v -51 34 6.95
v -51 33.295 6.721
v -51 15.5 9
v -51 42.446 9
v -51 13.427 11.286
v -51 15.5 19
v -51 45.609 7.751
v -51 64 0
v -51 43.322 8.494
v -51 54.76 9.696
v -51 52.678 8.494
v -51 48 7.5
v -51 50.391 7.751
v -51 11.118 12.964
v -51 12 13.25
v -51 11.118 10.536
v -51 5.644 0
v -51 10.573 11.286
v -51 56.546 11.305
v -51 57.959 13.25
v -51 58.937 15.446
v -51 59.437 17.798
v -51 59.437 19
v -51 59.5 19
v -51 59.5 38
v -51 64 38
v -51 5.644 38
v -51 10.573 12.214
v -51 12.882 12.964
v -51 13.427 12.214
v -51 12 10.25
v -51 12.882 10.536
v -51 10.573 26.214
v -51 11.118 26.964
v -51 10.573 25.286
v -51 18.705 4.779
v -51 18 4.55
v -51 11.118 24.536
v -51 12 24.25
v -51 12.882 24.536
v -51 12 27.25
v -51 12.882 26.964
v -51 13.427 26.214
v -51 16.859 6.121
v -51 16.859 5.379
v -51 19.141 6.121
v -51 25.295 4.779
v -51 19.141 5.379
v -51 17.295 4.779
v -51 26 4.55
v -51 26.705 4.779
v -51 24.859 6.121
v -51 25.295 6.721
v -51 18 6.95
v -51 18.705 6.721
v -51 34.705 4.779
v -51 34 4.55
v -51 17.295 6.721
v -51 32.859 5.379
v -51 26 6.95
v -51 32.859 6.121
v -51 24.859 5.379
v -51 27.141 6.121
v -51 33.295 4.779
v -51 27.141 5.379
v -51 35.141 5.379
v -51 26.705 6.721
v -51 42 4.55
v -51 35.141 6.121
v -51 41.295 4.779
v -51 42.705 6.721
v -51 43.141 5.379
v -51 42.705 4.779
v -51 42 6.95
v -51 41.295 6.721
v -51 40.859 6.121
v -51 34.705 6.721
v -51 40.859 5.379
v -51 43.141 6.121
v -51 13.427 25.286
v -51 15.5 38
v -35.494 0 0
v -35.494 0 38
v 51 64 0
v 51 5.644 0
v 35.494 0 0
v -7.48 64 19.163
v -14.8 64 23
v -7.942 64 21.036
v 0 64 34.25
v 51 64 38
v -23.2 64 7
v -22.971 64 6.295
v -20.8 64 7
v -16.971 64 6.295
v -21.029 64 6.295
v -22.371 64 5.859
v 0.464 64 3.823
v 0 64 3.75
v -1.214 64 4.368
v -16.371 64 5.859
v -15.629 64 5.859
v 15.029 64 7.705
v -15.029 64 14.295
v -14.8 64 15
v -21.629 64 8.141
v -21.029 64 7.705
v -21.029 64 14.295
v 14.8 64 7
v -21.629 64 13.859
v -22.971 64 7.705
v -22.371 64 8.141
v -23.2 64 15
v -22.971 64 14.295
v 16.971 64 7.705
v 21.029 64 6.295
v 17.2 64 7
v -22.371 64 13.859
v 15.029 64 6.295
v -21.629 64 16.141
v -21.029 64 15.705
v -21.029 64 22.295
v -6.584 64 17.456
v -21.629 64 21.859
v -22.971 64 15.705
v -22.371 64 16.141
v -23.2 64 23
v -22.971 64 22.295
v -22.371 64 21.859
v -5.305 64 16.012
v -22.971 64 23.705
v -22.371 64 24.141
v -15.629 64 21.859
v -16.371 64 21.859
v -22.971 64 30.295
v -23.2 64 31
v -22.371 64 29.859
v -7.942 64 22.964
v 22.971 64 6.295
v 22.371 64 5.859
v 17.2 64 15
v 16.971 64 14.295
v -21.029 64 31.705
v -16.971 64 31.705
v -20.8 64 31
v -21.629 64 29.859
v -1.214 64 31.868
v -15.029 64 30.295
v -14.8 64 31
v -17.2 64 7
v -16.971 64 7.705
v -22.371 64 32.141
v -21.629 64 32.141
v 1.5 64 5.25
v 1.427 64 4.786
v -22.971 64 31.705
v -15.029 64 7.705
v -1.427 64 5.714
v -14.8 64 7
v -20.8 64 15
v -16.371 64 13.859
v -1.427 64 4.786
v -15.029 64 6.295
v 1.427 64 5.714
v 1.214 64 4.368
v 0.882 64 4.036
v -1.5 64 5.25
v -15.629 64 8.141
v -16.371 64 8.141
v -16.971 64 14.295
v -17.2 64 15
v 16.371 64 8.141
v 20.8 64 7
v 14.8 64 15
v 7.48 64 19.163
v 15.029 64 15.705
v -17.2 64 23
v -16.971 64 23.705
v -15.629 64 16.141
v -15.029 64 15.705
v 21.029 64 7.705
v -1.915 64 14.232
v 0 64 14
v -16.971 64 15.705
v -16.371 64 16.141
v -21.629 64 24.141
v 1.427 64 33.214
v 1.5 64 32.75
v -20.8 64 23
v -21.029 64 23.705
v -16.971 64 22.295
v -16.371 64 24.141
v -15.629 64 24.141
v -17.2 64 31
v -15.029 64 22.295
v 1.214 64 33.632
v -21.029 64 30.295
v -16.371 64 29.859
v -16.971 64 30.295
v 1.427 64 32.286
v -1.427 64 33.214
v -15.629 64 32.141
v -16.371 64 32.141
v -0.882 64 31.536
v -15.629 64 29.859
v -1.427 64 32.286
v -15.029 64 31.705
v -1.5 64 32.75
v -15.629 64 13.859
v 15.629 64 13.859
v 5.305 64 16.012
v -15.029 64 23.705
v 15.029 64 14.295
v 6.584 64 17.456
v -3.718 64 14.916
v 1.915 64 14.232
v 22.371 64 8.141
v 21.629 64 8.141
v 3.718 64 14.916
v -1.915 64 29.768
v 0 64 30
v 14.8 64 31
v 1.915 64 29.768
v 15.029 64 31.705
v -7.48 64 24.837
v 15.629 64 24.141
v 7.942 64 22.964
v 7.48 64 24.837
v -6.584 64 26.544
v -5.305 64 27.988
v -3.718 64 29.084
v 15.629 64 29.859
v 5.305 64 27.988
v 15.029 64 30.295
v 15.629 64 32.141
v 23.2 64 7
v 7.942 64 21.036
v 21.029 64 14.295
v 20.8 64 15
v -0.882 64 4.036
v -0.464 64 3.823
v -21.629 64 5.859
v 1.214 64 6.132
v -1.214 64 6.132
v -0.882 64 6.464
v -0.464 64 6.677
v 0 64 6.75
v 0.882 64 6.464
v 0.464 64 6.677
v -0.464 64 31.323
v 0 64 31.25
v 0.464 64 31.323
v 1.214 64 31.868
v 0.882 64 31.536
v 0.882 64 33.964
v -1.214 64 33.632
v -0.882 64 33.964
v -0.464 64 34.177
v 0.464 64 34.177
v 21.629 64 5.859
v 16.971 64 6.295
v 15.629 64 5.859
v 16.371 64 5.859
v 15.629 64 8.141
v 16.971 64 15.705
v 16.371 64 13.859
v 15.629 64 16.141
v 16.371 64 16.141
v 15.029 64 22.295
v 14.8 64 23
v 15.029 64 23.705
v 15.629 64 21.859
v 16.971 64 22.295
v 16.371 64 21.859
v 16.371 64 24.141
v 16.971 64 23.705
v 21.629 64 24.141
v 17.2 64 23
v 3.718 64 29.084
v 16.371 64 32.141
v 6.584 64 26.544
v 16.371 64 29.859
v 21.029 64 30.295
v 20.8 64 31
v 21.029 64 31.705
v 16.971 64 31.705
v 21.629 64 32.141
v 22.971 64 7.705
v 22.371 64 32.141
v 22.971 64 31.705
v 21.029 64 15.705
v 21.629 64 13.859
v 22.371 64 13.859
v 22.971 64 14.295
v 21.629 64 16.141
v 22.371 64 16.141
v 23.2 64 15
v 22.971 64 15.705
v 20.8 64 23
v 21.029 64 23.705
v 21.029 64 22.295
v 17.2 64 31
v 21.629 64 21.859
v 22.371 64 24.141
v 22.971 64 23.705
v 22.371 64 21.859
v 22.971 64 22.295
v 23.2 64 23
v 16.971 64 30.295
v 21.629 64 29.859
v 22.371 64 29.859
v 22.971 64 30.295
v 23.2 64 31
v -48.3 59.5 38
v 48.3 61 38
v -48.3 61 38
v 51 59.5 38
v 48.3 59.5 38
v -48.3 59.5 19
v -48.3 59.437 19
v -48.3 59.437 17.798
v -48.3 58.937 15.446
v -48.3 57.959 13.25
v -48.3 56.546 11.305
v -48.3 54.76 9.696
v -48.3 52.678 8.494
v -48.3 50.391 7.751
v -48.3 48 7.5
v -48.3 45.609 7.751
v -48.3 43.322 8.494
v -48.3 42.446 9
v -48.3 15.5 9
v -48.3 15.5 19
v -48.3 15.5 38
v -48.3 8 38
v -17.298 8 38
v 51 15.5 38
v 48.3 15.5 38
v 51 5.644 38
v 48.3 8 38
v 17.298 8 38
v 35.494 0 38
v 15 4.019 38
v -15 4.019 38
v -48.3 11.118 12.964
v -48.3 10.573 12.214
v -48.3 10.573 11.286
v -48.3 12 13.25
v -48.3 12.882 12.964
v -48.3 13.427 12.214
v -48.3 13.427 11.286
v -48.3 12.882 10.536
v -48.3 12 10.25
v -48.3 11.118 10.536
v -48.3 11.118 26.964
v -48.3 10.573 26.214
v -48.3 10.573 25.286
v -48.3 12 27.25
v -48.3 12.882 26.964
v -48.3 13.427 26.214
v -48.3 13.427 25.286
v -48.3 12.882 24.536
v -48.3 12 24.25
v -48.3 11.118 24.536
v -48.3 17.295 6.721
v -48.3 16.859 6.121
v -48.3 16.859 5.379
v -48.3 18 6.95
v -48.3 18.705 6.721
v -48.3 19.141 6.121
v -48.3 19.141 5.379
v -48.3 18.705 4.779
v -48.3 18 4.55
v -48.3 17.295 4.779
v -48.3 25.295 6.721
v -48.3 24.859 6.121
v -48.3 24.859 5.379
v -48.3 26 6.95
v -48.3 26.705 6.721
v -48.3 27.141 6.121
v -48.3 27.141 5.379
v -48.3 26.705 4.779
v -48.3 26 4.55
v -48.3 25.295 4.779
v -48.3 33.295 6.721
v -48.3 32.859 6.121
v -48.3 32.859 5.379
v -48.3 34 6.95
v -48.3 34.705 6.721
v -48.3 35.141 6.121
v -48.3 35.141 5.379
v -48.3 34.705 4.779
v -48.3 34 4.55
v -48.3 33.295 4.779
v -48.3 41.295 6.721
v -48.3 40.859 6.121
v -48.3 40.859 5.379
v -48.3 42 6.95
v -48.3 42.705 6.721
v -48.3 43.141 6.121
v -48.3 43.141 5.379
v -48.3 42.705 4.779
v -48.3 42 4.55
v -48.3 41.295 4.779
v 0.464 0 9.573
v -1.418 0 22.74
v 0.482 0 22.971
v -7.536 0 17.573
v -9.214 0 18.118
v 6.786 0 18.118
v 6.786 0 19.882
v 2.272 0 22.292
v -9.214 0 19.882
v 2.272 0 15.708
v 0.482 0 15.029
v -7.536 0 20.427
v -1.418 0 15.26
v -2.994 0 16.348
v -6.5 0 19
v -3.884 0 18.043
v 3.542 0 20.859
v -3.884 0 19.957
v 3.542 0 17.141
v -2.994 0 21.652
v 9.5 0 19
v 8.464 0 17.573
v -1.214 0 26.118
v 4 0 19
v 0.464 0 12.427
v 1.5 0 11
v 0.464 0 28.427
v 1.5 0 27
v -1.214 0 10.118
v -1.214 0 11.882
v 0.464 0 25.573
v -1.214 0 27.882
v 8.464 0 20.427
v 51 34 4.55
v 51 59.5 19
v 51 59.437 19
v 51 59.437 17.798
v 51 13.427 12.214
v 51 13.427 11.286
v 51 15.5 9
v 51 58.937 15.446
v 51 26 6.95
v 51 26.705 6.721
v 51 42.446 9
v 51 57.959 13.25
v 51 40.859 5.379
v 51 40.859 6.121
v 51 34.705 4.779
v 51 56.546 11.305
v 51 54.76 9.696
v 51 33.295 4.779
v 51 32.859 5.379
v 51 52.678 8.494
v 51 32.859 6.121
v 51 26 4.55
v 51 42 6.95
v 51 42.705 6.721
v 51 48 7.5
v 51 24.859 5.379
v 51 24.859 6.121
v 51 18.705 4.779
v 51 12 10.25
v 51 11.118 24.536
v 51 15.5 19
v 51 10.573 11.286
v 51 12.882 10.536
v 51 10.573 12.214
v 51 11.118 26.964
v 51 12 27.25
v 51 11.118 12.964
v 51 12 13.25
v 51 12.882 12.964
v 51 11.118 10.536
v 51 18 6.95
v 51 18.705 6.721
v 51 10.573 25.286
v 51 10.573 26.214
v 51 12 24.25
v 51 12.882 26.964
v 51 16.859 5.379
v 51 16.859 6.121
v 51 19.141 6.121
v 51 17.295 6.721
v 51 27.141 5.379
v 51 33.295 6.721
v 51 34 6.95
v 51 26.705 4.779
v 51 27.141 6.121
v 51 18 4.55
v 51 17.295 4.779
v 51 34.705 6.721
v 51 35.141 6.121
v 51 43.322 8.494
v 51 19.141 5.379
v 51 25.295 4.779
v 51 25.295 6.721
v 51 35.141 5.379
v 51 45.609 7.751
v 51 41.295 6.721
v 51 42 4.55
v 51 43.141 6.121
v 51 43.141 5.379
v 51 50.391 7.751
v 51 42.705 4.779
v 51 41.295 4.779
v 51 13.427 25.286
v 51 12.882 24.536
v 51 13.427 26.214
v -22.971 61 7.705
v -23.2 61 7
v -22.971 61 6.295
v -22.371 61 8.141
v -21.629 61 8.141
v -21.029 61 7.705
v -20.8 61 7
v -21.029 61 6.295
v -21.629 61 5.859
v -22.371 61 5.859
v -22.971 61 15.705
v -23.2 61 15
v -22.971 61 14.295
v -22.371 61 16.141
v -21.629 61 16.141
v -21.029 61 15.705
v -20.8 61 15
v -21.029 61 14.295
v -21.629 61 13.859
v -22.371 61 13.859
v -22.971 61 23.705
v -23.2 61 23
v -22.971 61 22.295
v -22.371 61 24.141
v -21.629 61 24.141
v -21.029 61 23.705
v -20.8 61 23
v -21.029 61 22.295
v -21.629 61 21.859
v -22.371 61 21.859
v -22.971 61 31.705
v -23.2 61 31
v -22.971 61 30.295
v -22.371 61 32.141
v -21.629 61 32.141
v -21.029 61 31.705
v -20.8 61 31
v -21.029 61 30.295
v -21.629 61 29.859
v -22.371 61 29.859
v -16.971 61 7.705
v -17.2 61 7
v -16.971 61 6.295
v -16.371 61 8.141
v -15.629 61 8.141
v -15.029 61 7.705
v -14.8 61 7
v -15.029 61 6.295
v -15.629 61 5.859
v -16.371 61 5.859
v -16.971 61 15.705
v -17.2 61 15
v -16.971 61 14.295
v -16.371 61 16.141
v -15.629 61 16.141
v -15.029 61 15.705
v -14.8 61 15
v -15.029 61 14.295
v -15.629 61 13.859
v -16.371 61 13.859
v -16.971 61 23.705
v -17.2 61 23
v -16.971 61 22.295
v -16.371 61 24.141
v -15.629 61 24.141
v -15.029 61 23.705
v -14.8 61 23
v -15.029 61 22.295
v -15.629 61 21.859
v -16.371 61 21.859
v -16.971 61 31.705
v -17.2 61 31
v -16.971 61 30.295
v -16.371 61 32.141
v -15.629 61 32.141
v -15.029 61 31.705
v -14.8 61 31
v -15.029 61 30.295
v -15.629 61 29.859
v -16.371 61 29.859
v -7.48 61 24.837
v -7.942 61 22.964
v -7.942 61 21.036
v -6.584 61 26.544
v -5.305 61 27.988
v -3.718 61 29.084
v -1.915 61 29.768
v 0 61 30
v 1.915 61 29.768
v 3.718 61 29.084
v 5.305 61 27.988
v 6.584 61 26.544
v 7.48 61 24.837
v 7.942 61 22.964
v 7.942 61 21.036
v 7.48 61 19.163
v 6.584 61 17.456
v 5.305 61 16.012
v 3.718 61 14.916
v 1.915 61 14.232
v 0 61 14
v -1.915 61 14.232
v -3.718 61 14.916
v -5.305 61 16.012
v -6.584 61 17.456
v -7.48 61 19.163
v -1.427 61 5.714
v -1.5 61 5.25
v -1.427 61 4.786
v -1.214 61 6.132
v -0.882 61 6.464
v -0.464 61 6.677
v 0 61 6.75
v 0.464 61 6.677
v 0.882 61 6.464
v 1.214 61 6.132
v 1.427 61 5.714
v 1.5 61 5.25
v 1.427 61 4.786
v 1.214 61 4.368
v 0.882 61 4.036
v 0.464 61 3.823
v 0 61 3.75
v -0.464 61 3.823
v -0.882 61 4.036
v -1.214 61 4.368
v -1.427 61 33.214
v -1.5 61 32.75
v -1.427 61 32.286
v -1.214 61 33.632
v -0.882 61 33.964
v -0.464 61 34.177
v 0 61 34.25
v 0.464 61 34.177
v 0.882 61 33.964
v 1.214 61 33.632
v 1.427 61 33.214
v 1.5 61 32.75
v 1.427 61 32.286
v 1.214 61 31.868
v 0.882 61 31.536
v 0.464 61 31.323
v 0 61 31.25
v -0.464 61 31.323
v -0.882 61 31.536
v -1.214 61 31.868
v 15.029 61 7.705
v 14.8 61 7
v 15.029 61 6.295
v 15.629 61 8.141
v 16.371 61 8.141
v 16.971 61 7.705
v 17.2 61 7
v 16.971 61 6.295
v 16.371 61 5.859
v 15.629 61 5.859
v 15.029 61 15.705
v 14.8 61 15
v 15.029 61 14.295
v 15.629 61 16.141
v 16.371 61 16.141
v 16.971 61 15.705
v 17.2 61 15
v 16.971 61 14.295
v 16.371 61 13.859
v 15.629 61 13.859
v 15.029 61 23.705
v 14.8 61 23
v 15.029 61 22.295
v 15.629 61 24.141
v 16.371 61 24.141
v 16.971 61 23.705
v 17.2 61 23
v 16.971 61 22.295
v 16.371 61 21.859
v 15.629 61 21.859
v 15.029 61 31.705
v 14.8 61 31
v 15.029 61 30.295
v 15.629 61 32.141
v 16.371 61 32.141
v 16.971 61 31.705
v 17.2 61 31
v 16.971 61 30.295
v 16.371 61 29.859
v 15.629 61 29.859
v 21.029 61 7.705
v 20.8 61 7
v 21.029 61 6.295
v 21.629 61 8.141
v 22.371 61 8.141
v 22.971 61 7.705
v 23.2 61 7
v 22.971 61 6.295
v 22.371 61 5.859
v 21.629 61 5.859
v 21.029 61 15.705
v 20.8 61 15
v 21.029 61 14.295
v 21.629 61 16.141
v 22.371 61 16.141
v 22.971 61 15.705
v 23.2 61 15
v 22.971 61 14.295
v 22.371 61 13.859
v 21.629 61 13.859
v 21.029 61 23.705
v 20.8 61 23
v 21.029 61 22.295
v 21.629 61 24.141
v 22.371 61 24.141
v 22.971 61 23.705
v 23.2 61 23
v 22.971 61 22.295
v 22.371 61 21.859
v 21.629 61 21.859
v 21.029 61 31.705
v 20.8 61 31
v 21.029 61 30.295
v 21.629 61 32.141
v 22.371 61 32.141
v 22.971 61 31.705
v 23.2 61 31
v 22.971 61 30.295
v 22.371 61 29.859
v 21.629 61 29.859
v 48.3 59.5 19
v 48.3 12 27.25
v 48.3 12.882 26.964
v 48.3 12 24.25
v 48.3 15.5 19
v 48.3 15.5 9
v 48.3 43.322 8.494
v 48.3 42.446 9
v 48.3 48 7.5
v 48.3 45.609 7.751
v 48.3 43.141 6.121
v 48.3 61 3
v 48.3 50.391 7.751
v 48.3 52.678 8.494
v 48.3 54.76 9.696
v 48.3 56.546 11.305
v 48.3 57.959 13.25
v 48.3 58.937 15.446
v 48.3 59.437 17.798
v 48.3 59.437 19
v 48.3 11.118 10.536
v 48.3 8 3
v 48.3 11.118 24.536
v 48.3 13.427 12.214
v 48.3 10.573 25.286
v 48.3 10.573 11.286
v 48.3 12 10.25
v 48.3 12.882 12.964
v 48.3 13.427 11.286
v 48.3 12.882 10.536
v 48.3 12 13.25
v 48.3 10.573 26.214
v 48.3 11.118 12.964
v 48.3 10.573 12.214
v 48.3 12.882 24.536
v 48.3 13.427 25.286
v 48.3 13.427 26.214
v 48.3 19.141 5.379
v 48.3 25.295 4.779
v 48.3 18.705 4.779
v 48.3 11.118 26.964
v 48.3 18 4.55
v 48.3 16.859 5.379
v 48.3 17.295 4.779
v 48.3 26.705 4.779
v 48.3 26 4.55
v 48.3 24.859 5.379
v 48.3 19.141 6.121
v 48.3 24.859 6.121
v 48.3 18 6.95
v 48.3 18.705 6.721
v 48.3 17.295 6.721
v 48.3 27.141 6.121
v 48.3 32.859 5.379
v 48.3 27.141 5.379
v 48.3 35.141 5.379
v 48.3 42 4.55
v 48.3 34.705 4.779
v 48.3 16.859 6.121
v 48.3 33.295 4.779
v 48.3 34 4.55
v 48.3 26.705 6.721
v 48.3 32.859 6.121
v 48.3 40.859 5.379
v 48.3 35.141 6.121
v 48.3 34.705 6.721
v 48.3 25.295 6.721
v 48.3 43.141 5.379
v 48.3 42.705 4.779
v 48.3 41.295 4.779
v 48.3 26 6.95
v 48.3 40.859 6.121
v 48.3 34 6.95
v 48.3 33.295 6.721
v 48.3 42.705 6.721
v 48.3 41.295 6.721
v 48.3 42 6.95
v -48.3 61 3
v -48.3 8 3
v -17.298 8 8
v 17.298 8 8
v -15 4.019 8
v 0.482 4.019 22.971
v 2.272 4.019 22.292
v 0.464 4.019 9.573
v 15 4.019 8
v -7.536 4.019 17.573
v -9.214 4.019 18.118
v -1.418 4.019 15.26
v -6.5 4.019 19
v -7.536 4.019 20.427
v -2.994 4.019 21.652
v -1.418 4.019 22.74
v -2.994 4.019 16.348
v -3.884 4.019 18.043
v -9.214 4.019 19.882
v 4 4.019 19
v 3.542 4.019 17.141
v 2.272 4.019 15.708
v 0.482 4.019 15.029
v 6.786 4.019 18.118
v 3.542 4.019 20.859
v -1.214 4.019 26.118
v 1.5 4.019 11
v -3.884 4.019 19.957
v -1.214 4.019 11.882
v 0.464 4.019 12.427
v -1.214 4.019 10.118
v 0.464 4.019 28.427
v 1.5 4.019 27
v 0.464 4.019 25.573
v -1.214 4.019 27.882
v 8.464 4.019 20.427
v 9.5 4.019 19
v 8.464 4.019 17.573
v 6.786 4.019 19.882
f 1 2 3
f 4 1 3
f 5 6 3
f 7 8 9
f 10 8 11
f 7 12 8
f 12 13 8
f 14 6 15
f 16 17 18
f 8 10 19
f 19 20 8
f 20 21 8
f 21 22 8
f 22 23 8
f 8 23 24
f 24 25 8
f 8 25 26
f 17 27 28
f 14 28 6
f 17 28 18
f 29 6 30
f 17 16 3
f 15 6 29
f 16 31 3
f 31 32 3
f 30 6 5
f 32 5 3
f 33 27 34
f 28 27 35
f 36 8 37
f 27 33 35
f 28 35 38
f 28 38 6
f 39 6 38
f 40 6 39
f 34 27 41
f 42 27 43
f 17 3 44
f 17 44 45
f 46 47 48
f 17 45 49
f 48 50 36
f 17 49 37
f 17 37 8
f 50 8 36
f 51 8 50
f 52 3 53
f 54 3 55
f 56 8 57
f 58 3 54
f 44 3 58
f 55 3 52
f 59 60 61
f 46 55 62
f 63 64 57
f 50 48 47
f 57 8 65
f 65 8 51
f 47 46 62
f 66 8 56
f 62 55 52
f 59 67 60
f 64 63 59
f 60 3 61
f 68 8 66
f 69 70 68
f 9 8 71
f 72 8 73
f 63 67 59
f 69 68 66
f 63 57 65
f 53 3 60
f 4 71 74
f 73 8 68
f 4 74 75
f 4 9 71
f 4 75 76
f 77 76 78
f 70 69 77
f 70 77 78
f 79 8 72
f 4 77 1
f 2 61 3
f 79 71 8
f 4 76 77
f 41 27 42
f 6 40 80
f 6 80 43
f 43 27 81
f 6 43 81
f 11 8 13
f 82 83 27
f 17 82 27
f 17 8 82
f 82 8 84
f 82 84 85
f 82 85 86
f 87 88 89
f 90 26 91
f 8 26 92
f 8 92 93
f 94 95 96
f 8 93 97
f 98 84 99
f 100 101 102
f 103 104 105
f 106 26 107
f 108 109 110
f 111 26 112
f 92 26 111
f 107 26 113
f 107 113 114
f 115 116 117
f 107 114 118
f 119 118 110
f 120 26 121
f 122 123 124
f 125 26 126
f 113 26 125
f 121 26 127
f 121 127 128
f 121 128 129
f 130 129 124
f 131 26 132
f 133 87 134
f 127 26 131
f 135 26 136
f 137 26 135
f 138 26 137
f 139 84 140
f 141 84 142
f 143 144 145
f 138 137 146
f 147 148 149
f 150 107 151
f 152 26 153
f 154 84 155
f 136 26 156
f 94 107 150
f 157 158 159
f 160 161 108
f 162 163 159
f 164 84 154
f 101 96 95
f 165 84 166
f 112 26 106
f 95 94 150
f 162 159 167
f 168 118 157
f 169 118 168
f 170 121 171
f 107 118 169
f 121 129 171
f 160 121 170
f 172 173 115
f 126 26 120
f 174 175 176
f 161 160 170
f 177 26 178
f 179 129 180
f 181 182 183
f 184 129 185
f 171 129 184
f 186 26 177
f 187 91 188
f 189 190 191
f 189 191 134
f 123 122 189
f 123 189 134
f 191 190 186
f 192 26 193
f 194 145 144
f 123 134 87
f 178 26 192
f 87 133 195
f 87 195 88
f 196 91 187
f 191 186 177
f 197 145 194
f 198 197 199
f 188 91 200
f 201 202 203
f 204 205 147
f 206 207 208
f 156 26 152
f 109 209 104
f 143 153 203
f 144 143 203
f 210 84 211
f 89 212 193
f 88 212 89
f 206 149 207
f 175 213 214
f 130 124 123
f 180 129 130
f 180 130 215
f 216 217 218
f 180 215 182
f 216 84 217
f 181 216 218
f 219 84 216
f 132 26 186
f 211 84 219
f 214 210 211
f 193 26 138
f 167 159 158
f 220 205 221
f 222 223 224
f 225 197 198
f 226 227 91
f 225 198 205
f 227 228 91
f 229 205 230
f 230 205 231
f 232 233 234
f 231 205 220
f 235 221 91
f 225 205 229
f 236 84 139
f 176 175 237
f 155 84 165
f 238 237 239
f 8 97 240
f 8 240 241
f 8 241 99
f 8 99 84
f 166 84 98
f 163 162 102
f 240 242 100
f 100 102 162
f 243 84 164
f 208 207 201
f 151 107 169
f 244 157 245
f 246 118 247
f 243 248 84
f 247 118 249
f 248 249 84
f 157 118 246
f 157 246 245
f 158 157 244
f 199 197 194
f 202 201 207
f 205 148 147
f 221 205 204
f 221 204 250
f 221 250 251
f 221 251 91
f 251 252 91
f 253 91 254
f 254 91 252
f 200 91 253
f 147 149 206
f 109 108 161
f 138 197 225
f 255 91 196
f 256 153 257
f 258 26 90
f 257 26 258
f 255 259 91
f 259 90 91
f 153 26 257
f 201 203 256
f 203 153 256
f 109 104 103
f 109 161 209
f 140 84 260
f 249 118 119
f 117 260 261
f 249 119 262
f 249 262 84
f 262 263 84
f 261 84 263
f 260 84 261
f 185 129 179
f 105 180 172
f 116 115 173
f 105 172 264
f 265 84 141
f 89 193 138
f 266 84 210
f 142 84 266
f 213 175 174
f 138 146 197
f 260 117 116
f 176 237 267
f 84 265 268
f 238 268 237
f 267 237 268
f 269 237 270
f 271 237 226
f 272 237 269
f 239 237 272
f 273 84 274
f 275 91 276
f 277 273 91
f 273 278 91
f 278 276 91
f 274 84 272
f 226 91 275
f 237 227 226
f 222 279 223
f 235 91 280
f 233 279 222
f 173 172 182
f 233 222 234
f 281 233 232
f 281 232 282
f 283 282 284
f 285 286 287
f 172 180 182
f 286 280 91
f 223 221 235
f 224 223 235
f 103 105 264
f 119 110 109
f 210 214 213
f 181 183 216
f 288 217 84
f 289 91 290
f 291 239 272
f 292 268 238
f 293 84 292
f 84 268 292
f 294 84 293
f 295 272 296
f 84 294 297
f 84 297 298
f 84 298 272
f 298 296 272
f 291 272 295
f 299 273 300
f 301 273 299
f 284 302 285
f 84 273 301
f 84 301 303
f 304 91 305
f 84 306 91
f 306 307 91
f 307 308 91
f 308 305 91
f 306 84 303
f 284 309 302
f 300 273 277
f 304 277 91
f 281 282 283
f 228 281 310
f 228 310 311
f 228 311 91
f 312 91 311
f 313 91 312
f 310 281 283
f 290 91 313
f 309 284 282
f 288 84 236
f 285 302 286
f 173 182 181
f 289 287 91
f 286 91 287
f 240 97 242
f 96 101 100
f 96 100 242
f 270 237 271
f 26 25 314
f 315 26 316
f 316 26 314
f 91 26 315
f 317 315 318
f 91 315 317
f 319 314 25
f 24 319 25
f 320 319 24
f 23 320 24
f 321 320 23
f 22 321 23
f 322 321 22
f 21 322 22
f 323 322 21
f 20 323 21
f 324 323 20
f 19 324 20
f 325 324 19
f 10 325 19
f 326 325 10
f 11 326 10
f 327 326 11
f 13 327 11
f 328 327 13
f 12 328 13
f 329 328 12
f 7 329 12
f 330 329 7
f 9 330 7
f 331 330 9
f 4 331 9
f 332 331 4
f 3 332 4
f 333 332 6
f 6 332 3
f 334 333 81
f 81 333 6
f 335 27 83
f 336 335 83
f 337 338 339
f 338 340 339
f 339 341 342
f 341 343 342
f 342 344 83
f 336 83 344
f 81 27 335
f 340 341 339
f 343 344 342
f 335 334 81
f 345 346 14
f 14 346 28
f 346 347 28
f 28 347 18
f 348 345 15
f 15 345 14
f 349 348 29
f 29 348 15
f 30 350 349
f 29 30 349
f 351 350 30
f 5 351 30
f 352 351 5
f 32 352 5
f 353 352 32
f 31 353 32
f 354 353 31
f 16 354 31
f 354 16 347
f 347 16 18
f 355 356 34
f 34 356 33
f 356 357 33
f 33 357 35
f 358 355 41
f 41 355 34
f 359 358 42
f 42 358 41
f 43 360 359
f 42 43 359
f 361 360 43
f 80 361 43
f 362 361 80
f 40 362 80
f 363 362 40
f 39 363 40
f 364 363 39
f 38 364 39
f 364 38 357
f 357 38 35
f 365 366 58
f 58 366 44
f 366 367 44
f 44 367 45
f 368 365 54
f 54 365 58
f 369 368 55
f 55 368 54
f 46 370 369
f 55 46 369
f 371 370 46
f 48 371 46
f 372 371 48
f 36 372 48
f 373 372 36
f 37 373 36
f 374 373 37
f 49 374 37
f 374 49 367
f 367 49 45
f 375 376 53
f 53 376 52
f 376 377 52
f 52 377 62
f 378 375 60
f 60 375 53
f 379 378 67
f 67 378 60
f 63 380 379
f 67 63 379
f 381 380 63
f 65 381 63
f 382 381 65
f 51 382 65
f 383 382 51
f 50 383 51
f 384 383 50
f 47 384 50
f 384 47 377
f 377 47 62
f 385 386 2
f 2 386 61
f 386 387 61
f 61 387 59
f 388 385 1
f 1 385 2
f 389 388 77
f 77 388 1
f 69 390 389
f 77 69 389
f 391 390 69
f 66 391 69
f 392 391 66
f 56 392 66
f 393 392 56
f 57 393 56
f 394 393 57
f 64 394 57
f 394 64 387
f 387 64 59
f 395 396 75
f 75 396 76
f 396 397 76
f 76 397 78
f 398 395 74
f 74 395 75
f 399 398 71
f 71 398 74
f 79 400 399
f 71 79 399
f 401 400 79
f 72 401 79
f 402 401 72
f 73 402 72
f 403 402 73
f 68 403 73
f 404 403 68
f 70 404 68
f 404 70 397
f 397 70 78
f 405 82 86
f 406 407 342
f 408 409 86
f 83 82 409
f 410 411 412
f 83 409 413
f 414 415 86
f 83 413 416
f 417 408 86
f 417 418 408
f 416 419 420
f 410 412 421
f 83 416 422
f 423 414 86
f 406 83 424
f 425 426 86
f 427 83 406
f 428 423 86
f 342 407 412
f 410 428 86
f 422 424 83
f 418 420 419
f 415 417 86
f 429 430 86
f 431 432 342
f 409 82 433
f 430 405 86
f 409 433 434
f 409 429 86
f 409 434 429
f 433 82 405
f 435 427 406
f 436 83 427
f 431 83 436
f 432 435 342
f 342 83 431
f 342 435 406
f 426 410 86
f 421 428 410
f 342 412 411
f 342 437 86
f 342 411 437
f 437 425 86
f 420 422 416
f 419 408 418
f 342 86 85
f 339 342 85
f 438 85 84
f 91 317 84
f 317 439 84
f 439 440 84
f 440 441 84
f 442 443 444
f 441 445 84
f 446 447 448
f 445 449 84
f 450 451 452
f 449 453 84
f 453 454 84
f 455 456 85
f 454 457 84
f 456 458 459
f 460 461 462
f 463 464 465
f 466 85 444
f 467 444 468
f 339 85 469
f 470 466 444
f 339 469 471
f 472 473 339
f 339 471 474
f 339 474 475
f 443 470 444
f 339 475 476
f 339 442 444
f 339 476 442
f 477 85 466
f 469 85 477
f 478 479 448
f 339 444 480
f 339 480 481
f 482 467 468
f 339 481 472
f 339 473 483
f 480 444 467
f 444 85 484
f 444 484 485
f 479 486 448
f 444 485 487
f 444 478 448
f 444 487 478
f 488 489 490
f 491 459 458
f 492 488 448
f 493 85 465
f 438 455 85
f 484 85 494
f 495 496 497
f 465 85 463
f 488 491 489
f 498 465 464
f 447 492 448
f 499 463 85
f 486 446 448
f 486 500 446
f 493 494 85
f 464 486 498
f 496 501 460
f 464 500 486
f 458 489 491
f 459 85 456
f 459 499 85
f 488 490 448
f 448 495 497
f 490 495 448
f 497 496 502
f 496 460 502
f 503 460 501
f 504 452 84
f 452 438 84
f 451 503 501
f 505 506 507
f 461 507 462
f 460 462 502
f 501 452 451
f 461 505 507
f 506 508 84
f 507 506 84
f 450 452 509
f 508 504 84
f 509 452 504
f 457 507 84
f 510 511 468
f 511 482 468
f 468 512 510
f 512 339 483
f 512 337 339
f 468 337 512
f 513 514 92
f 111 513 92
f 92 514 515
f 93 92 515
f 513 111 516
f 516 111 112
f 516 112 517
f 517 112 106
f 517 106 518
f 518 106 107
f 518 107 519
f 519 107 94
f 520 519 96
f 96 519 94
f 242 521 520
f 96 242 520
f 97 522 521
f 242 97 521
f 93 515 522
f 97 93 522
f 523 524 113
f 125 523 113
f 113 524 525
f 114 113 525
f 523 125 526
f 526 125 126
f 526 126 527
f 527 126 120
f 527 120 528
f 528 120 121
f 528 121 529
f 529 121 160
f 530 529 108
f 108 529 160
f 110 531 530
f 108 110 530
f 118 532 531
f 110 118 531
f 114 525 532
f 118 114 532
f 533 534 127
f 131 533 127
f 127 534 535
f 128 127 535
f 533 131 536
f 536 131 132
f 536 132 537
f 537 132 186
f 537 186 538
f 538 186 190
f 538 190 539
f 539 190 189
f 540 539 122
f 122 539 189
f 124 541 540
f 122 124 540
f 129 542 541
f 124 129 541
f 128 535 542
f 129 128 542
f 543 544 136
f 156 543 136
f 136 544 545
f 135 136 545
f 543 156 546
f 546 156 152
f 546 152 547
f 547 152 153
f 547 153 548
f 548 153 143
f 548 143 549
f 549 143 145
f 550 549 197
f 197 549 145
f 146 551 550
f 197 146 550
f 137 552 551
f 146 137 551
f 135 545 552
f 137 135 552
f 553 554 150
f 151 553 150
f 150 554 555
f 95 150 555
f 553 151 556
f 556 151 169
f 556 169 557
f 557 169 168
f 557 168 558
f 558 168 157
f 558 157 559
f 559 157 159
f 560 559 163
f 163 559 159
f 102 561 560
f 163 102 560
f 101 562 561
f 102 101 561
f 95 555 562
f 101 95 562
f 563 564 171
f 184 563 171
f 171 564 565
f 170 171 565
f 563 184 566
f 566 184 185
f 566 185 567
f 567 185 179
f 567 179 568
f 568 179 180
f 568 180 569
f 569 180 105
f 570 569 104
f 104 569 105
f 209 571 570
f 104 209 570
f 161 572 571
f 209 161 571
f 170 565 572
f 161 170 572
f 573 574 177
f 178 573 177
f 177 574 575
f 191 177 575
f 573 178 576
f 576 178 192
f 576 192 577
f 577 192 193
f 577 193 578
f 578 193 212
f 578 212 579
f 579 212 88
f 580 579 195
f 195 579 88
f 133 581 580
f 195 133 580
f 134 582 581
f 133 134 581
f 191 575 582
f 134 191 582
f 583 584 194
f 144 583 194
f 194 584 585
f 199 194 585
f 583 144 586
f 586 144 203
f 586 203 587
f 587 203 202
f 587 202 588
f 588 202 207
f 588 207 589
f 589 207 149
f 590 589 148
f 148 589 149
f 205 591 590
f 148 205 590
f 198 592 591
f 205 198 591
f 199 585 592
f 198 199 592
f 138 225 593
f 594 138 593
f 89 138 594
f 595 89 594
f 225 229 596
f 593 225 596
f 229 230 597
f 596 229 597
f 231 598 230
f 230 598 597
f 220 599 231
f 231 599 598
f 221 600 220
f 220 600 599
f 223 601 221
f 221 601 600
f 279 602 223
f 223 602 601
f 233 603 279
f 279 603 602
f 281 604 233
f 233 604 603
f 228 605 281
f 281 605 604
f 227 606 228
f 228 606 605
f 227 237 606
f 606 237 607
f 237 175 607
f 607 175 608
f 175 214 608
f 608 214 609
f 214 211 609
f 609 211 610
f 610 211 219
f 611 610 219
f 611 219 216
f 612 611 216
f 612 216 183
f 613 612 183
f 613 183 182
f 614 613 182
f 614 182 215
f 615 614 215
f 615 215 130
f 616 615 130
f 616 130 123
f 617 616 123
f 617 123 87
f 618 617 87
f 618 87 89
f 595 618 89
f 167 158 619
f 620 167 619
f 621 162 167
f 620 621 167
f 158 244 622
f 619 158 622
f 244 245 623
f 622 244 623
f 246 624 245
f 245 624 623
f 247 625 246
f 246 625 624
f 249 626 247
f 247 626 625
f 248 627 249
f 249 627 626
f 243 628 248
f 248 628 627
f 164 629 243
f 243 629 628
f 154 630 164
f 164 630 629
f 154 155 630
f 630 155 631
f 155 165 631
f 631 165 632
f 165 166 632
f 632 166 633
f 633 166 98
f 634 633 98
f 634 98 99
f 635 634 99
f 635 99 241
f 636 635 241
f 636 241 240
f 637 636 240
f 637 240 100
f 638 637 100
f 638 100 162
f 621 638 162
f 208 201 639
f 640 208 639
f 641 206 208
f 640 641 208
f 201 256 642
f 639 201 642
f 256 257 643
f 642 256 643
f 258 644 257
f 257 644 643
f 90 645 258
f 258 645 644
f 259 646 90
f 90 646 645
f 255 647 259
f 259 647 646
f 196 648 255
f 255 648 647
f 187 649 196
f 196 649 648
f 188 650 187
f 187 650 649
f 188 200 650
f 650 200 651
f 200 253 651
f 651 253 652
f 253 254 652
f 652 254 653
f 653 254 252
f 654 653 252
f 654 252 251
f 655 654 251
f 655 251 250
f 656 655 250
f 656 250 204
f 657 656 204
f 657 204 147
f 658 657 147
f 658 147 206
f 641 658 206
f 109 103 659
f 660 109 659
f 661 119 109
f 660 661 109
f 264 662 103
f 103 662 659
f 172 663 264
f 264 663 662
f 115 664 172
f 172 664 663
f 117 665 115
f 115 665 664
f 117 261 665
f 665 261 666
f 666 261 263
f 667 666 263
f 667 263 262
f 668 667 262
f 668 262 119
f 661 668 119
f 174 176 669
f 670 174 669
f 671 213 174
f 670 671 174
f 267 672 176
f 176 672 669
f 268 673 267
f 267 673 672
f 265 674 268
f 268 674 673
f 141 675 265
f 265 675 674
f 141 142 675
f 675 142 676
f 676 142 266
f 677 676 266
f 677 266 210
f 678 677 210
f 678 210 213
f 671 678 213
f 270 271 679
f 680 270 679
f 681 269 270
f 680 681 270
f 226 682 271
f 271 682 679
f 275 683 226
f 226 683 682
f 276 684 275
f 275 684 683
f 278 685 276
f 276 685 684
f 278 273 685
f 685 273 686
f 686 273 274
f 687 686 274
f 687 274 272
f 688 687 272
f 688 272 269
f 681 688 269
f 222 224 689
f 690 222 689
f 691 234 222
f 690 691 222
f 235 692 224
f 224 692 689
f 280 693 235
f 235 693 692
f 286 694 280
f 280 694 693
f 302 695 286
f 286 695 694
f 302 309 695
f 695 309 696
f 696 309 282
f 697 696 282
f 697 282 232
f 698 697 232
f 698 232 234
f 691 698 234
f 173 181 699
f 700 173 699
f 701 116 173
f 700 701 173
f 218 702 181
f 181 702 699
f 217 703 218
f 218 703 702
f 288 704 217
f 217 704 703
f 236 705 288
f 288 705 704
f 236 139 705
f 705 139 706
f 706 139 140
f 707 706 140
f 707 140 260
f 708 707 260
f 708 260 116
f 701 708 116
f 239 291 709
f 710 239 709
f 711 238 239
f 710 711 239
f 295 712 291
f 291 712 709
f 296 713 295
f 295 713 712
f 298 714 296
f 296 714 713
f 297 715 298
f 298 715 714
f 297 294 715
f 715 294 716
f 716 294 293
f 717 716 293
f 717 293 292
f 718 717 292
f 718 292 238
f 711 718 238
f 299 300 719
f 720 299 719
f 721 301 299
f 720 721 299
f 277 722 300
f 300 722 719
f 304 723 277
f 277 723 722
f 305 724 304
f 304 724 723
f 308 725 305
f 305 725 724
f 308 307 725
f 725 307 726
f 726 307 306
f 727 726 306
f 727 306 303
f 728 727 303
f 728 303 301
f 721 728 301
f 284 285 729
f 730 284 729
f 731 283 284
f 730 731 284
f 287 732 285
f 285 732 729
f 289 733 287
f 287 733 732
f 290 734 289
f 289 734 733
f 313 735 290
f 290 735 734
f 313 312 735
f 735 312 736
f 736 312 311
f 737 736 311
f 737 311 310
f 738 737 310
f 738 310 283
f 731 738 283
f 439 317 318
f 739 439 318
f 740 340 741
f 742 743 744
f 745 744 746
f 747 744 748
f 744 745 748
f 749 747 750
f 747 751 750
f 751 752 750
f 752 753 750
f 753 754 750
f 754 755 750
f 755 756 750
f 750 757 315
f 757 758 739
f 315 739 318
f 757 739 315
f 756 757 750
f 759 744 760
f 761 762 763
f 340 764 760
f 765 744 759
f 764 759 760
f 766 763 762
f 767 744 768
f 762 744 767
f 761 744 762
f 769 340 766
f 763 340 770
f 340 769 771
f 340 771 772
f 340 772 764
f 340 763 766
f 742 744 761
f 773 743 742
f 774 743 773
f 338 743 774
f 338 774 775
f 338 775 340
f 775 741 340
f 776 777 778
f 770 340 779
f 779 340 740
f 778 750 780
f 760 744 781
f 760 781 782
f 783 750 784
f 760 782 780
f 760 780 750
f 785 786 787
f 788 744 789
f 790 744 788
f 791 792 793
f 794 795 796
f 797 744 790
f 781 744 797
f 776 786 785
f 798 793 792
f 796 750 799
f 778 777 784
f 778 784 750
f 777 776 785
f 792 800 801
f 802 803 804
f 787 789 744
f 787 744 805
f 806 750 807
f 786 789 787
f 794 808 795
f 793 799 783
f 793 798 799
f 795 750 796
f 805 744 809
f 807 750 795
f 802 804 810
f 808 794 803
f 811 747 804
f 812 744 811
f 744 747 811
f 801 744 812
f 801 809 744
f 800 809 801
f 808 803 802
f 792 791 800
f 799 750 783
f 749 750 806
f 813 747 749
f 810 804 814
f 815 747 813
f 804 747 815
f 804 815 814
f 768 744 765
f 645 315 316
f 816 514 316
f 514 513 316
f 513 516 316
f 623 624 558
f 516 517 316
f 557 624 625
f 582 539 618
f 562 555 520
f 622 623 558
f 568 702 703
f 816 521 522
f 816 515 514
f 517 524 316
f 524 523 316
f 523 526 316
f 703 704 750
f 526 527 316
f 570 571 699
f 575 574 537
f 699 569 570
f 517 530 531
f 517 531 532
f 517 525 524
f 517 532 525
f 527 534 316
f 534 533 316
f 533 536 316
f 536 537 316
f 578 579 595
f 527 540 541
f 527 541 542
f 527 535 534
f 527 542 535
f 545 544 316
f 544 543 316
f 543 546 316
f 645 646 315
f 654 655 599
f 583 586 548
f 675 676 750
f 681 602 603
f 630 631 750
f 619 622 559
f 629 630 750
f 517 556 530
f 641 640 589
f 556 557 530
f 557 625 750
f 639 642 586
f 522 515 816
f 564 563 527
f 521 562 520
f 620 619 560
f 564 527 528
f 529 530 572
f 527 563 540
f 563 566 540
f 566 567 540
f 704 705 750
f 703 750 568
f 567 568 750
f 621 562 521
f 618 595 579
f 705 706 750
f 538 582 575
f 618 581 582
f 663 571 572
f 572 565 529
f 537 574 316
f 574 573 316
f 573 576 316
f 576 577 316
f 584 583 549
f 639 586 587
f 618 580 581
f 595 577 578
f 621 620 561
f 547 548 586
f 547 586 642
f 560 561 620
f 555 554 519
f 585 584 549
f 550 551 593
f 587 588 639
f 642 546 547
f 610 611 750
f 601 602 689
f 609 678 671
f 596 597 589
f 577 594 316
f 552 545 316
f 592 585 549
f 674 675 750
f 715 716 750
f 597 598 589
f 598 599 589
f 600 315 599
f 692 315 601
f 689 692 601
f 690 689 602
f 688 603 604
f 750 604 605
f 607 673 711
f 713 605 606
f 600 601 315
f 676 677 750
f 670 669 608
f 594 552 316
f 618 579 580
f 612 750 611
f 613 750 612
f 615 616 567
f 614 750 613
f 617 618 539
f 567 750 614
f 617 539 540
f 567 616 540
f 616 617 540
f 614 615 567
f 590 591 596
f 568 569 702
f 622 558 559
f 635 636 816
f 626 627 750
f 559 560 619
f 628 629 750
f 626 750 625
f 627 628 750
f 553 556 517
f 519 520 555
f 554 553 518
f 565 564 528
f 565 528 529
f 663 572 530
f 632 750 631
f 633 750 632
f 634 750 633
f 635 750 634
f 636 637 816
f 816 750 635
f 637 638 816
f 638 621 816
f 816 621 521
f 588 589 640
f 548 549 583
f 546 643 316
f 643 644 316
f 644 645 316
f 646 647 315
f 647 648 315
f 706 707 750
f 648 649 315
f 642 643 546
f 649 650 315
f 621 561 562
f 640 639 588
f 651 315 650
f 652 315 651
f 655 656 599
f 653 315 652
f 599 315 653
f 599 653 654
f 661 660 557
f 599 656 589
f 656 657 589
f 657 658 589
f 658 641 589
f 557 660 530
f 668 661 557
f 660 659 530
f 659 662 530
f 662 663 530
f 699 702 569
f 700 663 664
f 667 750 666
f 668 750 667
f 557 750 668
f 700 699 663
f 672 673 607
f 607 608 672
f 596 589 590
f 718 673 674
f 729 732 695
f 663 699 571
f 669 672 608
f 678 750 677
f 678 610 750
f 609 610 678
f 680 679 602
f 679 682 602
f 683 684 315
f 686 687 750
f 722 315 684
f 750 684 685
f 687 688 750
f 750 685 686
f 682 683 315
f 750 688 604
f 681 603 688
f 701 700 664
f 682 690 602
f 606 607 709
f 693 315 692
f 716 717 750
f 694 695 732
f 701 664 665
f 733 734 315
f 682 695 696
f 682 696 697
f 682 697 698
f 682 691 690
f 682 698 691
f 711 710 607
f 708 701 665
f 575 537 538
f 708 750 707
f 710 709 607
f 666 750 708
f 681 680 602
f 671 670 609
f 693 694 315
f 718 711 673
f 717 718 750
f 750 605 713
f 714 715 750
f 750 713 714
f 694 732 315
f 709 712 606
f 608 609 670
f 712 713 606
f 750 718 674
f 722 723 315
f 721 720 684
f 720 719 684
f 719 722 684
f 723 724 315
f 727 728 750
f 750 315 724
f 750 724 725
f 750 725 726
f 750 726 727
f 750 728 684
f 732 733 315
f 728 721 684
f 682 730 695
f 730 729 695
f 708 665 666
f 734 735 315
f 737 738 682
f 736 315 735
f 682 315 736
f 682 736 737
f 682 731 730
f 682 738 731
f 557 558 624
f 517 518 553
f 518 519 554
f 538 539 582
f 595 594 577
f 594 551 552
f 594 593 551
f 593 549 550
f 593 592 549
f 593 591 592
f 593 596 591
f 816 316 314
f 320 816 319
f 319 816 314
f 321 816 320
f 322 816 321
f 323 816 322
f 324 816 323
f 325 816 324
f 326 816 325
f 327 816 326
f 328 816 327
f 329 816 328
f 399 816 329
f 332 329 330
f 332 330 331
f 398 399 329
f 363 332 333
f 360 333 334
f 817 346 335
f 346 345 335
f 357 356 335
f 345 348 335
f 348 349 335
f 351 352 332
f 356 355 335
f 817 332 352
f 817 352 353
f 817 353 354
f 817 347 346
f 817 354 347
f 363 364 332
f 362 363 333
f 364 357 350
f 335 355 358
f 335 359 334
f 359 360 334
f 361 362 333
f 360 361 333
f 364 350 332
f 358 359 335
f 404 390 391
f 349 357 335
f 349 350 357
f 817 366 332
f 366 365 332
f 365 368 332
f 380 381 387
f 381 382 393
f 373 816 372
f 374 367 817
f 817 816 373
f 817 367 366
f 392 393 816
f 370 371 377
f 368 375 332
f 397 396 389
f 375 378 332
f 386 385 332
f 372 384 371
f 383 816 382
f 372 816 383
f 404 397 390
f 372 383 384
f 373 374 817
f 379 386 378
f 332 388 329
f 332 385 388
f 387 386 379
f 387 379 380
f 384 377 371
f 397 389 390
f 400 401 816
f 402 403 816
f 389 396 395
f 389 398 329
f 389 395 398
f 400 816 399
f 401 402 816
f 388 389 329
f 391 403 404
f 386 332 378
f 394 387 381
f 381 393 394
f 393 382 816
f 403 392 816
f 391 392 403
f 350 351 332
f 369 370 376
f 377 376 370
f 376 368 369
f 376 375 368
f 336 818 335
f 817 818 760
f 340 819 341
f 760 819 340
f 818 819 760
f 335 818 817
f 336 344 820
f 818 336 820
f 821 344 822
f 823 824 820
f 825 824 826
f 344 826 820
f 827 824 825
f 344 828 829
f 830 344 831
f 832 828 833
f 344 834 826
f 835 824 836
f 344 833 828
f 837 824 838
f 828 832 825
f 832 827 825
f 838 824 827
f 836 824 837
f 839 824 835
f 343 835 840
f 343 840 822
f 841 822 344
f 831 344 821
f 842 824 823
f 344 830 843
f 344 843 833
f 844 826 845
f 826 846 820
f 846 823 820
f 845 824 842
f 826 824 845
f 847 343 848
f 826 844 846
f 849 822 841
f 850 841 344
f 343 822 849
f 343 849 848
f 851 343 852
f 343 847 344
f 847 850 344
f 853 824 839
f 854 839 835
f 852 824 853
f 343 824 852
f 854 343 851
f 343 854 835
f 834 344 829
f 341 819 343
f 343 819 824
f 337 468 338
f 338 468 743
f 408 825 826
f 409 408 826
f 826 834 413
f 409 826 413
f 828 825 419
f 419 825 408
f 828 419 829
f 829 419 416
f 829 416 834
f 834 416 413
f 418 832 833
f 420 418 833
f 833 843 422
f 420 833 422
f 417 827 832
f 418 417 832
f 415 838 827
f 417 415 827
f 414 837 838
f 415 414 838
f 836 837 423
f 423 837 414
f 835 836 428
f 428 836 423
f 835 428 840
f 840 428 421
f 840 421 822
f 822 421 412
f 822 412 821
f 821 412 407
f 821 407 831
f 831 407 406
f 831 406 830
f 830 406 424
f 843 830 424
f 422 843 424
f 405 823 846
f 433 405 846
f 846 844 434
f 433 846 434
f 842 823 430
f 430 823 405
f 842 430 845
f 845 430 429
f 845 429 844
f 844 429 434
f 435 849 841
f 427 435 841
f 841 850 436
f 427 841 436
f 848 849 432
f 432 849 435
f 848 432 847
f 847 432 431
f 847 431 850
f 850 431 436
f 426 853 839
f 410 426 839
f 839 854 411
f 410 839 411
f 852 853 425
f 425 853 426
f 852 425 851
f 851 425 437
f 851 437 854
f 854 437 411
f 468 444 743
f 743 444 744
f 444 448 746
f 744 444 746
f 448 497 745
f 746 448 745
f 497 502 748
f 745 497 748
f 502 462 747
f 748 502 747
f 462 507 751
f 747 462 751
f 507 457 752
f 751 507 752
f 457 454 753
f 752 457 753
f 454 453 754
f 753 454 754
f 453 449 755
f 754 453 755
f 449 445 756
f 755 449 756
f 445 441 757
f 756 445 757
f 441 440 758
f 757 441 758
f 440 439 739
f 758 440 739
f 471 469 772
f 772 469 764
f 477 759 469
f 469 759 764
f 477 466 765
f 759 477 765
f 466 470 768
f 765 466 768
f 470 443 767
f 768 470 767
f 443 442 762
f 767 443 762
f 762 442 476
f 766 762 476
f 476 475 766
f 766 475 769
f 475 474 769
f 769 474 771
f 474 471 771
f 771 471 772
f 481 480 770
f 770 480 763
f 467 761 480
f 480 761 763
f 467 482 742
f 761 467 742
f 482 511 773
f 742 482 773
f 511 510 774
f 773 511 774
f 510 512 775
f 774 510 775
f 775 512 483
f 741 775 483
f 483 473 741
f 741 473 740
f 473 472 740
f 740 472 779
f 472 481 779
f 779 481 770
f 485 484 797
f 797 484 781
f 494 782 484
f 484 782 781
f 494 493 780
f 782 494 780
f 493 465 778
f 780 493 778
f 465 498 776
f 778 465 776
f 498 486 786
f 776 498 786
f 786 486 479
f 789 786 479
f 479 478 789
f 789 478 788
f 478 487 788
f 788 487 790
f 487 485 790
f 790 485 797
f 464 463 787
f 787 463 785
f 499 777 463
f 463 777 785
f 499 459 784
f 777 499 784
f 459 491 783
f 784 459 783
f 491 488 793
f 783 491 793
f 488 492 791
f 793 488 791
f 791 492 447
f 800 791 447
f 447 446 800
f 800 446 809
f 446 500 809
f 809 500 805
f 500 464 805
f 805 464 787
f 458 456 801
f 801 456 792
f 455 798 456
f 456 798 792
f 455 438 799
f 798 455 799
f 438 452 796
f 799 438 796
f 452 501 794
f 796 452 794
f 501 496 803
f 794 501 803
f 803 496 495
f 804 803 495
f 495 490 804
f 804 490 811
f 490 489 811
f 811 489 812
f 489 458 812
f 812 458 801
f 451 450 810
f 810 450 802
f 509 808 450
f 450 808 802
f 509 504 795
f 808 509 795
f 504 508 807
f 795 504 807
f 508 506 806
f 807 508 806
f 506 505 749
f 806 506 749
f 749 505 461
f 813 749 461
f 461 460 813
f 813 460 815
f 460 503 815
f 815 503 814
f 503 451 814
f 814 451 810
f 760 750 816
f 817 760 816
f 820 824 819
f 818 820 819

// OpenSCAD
module agujereado(X,Y,H){
	union(){
		for(j=[0:X])
		{
			translate([0,j*8,0])
			{
				for(i=[0:Y])
				{
					translate([i*6,0,-1])cylinder(r=1.2, h=H, $fn=10);
				}
			}
		}
	}
}

module dynahole(H){
	translate([-45.5/2,-10,1])union(){
		translate([3.5+6,16,0])agujereado(3,0,H);
		translate([9.5+26.5,16,0])agujereado(3,0,H);
		translate([45.5/2,10,-1])cylinder(r=11.5,h=H);	
		translate([(45.5-20)/2,6.5,-1])cube([20,36,H]);
		translate([22.5,46,0])union(){
			translate([7,0,-1])cylinder(r=1.5, h=H, $fn=10);
			translate([-7,0,-1])cylinder(r=1.5, h=H, $fn=10);
		}
	}
}

module cruz(H){
	translate([-34,-13,3])union(){
		translate([34,13,-3]) cylinder(r=4,h=H);
		translate([42,13,-3]) cylinder(r=1.5,h=H);
		translate([26,13,-3]) cylinder(r=1.5,h=H);
		translate([34,21,-3]) cylinder(r=1.5,h=H);
		translate([34,5,-3]) cylinder(r=1.5,h=H);
	}
}

module miniservo(H){
	translate([-15,-7,0])union(){
		translate([15,7,0])rotate([0,0,0])cylinder(r=8,h=H);
		translate([-1.75,7,0])union(){
			cylinder(r=1.5, h=H,$fn=20);
			translate([27.5,0,0])cylinder(r=1.5, h=H,$fn=20);
		}
	}
}


difference(){
	translate([-51,0,0])cube([102,64,38]);
	translate([2.7-51,8,3])cube([102-2.7*2,53,43+1]);
	translate([-5-51,48,19])rotate([0,-90,-180])dynahole(140);
	translate([-10-51,-12,-5])rotate([0,0,-20])cube([20,20,80]);
	mirror([1,0,0])translate([-10-51,-12,-5])rotate([0,0,-20])cube([20,20,80]);
	translate([0,30,8])cylinder(r=30,h=50,$fn=6);
	translate([0,-5,19])rotate([-90,0,0])cruz(14);
	translate([0,66,22])rotate([0,270,90])miniservo(9);
	translate([16,66,7])rotate([90,0,0])agujereado(3,1,10);
	mirror([1,0,0])translate([16,66,7])rotate([90,0,0])agujereado(3,1,10);
translate([-70,15.5,19])cube([140,44,50]);

}
